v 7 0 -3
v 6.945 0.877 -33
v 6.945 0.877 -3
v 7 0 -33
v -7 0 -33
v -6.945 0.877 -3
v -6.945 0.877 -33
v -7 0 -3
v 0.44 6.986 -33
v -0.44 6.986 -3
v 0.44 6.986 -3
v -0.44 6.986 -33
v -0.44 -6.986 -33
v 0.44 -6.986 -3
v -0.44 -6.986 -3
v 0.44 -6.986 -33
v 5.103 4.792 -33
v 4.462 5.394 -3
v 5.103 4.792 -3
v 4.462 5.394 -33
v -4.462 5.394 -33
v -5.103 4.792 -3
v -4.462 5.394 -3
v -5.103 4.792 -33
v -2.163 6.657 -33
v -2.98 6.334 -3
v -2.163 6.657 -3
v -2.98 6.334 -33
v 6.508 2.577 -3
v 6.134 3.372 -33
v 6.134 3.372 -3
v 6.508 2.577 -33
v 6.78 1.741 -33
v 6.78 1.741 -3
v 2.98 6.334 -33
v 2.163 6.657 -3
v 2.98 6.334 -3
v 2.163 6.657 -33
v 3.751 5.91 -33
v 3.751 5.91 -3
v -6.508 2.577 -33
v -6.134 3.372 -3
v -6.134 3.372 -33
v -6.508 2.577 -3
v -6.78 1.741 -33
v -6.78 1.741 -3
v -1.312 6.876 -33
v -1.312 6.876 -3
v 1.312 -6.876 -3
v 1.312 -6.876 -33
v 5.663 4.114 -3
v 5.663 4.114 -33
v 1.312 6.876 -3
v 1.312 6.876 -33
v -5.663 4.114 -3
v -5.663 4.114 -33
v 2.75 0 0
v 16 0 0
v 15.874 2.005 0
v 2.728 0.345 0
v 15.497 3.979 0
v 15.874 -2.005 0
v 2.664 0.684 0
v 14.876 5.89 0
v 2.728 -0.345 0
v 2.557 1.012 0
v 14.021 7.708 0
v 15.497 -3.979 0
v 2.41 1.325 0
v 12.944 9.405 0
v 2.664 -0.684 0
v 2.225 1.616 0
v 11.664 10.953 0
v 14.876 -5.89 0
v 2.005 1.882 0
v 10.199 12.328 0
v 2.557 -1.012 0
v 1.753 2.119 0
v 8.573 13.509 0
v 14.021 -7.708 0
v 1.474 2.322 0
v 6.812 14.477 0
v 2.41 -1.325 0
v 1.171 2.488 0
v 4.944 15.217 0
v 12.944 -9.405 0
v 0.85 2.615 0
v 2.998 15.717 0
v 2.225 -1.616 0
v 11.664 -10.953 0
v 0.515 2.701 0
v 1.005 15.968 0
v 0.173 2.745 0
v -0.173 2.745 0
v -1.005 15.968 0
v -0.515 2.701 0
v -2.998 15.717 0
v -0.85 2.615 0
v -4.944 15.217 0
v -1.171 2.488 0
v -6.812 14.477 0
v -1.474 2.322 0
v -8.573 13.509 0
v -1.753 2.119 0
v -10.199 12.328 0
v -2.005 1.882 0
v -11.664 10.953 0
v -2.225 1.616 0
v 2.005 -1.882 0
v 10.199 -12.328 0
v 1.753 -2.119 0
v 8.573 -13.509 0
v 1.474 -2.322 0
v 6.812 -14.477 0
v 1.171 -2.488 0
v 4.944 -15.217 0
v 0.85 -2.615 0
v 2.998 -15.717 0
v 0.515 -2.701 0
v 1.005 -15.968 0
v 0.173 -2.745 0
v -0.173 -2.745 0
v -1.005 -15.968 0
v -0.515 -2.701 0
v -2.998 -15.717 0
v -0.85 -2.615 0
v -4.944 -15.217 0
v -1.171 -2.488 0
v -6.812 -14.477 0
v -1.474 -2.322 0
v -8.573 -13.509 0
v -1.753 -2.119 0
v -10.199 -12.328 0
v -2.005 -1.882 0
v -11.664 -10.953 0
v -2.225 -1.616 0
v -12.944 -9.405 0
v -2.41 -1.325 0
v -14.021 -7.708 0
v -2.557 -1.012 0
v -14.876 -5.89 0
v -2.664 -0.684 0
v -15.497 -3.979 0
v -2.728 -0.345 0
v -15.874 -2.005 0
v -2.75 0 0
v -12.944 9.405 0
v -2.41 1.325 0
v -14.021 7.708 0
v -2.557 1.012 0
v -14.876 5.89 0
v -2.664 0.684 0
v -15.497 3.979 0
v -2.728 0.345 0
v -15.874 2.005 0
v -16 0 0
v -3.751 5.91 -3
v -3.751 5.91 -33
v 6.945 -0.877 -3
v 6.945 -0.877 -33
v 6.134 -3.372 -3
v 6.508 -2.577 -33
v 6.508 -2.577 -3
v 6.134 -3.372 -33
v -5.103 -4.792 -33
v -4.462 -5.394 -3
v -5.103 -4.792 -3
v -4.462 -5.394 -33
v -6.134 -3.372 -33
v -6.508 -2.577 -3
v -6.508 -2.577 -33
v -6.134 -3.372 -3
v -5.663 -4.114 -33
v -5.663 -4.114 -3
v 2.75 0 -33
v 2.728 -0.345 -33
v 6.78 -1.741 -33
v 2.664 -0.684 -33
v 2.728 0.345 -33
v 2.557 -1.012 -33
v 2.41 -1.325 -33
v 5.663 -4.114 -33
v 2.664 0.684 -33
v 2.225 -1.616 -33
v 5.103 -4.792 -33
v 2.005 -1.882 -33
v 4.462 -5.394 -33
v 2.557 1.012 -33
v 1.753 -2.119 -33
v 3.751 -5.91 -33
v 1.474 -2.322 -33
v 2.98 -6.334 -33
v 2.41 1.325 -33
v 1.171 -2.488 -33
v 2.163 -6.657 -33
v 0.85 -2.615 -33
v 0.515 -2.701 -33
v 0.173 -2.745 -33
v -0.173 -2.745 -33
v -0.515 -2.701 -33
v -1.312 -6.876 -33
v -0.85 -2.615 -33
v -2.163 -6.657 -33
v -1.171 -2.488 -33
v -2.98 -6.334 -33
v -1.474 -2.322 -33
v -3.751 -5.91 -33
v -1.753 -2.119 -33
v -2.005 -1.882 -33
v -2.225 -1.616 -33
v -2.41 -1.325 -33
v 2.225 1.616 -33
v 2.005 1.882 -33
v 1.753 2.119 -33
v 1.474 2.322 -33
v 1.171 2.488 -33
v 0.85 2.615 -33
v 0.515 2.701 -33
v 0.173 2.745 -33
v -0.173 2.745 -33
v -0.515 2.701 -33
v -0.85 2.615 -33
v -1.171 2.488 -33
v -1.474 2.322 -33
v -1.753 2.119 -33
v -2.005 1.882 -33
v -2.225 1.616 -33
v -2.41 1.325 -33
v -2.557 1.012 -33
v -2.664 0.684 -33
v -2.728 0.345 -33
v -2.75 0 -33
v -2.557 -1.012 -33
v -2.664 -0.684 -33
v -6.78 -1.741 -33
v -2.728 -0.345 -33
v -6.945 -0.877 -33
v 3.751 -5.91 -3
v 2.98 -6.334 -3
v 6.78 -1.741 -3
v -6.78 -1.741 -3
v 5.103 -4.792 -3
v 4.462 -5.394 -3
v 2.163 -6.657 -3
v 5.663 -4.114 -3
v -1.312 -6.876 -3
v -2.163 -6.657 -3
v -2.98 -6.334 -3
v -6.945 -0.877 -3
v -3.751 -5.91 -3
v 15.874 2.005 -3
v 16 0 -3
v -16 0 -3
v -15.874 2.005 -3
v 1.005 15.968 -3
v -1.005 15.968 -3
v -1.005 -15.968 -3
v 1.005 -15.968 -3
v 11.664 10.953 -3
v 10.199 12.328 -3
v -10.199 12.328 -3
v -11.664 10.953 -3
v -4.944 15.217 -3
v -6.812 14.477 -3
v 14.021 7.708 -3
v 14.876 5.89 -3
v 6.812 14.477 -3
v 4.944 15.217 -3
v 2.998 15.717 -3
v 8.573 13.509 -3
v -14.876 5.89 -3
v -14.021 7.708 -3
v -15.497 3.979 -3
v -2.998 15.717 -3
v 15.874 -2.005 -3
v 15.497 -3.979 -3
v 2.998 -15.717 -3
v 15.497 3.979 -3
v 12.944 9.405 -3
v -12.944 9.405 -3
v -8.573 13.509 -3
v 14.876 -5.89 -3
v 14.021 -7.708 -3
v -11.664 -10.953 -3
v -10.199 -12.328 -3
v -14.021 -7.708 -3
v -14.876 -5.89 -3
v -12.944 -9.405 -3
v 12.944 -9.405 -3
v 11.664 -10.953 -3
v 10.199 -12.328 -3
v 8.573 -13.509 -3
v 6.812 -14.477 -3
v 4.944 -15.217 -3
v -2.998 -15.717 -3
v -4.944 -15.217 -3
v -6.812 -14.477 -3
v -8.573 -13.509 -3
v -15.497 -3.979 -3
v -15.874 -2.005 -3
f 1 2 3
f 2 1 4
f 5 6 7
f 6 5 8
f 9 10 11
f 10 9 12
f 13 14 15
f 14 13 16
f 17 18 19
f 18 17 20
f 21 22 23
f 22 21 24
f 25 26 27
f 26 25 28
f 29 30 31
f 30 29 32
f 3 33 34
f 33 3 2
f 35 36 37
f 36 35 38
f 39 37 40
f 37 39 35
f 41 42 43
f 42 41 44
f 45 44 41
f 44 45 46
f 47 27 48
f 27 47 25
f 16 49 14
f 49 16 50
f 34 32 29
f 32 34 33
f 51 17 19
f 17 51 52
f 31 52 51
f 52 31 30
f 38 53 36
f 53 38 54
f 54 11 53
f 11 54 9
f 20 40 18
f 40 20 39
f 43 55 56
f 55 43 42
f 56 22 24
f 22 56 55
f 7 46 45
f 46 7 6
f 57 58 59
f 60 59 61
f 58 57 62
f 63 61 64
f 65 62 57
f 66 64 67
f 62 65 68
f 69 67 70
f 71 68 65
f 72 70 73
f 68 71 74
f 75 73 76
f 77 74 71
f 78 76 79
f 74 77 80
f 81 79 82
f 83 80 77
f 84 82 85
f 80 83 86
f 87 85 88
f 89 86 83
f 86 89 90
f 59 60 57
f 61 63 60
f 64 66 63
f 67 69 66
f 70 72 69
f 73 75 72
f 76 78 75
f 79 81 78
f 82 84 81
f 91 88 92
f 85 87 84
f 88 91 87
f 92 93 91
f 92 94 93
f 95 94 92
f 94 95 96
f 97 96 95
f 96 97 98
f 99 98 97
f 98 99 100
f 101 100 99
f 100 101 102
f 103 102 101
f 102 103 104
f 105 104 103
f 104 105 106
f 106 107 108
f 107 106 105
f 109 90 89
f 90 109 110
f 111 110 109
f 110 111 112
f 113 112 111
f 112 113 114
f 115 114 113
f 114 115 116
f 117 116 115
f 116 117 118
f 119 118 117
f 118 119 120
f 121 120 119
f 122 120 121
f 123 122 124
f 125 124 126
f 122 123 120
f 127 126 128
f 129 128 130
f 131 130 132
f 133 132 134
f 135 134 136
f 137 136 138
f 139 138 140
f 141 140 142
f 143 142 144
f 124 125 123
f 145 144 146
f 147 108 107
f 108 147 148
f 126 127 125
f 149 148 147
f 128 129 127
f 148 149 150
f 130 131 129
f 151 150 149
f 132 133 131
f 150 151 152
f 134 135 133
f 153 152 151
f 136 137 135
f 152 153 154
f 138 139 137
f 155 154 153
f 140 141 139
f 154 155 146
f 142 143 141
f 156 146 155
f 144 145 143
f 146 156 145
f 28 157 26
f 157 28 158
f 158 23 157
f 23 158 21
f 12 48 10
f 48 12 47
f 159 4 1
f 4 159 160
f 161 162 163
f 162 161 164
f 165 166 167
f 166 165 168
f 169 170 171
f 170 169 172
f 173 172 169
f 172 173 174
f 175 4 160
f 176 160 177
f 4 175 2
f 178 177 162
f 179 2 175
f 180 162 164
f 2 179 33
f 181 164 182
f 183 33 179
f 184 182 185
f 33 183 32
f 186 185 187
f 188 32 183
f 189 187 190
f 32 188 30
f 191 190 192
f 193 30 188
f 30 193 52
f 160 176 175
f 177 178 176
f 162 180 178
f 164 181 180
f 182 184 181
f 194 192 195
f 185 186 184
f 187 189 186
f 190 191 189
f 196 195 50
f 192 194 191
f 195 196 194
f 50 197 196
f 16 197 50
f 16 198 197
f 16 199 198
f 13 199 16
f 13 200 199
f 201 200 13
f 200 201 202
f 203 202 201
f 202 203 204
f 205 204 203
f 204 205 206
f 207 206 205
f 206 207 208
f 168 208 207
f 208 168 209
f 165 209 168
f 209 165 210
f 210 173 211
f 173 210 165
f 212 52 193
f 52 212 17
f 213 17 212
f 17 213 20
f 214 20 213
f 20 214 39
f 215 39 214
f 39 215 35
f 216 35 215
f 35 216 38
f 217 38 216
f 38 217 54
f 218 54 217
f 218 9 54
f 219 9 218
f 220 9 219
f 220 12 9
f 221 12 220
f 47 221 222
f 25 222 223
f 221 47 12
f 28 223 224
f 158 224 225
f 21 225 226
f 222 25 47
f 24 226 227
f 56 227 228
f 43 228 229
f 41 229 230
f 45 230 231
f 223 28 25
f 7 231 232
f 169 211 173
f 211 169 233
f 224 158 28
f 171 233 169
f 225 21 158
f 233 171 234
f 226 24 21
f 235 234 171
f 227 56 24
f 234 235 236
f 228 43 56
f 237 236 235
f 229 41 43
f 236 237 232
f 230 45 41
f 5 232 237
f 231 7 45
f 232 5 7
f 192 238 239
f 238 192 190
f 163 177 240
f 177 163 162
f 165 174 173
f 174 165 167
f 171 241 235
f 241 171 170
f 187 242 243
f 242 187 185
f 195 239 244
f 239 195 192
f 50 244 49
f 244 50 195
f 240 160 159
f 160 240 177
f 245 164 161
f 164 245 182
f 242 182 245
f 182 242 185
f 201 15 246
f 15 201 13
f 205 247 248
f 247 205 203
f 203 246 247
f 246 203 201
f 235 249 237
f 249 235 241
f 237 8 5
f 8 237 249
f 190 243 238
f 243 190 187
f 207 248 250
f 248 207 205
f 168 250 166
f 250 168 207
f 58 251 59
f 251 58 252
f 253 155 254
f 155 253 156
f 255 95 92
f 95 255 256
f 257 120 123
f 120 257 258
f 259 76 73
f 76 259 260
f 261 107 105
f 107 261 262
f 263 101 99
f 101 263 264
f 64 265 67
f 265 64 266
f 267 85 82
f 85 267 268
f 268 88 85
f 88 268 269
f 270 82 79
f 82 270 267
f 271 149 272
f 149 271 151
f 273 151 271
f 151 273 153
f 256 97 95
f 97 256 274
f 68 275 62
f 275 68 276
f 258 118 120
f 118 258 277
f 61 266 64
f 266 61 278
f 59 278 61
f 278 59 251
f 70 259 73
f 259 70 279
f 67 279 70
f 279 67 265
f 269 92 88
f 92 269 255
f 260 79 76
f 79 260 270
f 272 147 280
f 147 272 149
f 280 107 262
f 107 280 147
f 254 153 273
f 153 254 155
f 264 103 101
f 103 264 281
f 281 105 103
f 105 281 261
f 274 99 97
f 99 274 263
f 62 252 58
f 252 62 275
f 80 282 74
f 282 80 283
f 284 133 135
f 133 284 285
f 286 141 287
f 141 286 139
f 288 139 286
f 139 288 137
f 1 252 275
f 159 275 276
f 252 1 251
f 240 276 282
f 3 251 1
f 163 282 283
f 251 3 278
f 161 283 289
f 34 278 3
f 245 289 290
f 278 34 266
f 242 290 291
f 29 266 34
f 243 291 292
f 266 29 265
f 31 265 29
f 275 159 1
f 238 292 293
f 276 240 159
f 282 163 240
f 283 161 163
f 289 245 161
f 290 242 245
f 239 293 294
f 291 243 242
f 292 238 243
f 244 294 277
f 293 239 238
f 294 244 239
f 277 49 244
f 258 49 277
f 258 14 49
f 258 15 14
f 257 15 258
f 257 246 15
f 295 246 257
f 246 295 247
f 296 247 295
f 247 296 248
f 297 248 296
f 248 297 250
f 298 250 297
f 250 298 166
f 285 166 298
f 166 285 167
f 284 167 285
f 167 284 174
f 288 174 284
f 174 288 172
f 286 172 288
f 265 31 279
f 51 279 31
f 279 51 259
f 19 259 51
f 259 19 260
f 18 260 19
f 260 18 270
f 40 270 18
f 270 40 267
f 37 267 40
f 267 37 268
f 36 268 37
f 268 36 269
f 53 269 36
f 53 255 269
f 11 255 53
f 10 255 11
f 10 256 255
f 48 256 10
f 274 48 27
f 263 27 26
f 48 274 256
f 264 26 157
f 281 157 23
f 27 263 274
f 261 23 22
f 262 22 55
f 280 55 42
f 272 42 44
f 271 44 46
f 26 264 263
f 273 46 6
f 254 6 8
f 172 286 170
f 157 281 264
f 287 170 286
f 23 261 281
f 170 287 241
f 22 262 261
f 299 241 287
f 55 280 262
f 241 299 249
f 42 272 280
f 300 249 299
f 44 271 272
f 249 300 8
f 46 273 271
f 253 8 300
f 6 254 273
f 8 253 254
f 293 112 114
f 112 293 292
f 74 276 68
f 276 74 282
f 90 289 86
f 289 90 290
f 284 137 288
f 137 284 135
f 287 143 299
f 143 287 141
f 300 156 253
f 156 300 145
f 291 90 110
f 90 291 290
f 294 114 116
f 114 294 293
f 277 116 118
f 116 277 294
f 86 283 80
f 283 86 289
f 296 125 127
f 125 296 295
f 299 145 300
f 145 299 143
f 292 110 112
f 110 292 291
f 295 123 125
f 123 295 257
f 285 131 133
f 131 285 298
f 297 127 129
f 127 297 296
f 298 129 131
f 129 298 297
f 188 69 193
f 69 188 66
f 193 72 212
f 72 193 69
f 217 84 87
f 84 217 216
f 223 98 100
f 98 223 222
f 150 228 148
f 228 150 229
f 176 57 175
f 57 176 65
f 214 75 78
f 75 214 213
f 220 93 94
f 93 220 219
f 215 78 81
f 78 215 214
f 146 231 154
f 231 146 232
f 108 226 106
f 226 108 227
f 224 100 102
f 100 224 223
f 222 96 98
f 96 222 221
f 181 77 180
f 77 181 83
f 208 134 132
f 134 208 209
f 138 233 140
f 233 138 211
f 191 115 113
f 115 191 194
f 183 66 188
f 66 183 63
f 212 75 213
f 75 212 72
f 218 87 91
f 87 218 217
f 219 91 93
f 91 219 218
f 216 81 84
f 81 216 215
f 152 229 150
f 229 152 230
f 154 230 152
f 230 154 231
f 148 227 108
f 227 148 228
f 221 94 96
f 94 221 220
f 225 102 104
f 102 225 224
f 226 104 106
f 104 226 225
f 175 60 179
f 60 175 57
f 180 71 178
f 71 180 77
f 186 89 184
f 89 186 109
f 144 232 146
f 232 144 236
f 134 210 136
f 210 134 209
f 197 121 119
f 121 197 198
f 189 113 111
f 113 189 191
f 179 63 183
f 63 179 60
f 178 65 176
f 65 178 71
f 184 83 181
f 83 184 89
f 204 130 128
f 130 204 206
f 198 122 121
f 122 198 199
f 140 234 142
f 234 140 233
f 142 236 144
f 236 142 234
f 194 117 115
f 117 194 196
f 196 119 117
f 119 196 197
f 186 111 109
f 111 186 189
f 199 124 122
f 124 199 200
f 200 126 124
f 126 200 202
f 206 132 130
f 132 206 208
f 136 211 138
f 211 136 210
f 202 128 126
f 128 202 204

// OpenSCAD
$fn = 50;


difference() {
	union() {
		translate(v = [0, 0, -33.0000000000]) {
			cylinder(h = 33, r = 7.0000000000);
		}
		translate(v = [0, 0, -3.0000000000]) {
			cylinder(h = 3, r = 16.0000000000);
		}
	}
	union() {
		#translate(v = [0, 0, -33]) {
			cylinder(h = 33, r = 2.7500000000);
		}
	}
}
